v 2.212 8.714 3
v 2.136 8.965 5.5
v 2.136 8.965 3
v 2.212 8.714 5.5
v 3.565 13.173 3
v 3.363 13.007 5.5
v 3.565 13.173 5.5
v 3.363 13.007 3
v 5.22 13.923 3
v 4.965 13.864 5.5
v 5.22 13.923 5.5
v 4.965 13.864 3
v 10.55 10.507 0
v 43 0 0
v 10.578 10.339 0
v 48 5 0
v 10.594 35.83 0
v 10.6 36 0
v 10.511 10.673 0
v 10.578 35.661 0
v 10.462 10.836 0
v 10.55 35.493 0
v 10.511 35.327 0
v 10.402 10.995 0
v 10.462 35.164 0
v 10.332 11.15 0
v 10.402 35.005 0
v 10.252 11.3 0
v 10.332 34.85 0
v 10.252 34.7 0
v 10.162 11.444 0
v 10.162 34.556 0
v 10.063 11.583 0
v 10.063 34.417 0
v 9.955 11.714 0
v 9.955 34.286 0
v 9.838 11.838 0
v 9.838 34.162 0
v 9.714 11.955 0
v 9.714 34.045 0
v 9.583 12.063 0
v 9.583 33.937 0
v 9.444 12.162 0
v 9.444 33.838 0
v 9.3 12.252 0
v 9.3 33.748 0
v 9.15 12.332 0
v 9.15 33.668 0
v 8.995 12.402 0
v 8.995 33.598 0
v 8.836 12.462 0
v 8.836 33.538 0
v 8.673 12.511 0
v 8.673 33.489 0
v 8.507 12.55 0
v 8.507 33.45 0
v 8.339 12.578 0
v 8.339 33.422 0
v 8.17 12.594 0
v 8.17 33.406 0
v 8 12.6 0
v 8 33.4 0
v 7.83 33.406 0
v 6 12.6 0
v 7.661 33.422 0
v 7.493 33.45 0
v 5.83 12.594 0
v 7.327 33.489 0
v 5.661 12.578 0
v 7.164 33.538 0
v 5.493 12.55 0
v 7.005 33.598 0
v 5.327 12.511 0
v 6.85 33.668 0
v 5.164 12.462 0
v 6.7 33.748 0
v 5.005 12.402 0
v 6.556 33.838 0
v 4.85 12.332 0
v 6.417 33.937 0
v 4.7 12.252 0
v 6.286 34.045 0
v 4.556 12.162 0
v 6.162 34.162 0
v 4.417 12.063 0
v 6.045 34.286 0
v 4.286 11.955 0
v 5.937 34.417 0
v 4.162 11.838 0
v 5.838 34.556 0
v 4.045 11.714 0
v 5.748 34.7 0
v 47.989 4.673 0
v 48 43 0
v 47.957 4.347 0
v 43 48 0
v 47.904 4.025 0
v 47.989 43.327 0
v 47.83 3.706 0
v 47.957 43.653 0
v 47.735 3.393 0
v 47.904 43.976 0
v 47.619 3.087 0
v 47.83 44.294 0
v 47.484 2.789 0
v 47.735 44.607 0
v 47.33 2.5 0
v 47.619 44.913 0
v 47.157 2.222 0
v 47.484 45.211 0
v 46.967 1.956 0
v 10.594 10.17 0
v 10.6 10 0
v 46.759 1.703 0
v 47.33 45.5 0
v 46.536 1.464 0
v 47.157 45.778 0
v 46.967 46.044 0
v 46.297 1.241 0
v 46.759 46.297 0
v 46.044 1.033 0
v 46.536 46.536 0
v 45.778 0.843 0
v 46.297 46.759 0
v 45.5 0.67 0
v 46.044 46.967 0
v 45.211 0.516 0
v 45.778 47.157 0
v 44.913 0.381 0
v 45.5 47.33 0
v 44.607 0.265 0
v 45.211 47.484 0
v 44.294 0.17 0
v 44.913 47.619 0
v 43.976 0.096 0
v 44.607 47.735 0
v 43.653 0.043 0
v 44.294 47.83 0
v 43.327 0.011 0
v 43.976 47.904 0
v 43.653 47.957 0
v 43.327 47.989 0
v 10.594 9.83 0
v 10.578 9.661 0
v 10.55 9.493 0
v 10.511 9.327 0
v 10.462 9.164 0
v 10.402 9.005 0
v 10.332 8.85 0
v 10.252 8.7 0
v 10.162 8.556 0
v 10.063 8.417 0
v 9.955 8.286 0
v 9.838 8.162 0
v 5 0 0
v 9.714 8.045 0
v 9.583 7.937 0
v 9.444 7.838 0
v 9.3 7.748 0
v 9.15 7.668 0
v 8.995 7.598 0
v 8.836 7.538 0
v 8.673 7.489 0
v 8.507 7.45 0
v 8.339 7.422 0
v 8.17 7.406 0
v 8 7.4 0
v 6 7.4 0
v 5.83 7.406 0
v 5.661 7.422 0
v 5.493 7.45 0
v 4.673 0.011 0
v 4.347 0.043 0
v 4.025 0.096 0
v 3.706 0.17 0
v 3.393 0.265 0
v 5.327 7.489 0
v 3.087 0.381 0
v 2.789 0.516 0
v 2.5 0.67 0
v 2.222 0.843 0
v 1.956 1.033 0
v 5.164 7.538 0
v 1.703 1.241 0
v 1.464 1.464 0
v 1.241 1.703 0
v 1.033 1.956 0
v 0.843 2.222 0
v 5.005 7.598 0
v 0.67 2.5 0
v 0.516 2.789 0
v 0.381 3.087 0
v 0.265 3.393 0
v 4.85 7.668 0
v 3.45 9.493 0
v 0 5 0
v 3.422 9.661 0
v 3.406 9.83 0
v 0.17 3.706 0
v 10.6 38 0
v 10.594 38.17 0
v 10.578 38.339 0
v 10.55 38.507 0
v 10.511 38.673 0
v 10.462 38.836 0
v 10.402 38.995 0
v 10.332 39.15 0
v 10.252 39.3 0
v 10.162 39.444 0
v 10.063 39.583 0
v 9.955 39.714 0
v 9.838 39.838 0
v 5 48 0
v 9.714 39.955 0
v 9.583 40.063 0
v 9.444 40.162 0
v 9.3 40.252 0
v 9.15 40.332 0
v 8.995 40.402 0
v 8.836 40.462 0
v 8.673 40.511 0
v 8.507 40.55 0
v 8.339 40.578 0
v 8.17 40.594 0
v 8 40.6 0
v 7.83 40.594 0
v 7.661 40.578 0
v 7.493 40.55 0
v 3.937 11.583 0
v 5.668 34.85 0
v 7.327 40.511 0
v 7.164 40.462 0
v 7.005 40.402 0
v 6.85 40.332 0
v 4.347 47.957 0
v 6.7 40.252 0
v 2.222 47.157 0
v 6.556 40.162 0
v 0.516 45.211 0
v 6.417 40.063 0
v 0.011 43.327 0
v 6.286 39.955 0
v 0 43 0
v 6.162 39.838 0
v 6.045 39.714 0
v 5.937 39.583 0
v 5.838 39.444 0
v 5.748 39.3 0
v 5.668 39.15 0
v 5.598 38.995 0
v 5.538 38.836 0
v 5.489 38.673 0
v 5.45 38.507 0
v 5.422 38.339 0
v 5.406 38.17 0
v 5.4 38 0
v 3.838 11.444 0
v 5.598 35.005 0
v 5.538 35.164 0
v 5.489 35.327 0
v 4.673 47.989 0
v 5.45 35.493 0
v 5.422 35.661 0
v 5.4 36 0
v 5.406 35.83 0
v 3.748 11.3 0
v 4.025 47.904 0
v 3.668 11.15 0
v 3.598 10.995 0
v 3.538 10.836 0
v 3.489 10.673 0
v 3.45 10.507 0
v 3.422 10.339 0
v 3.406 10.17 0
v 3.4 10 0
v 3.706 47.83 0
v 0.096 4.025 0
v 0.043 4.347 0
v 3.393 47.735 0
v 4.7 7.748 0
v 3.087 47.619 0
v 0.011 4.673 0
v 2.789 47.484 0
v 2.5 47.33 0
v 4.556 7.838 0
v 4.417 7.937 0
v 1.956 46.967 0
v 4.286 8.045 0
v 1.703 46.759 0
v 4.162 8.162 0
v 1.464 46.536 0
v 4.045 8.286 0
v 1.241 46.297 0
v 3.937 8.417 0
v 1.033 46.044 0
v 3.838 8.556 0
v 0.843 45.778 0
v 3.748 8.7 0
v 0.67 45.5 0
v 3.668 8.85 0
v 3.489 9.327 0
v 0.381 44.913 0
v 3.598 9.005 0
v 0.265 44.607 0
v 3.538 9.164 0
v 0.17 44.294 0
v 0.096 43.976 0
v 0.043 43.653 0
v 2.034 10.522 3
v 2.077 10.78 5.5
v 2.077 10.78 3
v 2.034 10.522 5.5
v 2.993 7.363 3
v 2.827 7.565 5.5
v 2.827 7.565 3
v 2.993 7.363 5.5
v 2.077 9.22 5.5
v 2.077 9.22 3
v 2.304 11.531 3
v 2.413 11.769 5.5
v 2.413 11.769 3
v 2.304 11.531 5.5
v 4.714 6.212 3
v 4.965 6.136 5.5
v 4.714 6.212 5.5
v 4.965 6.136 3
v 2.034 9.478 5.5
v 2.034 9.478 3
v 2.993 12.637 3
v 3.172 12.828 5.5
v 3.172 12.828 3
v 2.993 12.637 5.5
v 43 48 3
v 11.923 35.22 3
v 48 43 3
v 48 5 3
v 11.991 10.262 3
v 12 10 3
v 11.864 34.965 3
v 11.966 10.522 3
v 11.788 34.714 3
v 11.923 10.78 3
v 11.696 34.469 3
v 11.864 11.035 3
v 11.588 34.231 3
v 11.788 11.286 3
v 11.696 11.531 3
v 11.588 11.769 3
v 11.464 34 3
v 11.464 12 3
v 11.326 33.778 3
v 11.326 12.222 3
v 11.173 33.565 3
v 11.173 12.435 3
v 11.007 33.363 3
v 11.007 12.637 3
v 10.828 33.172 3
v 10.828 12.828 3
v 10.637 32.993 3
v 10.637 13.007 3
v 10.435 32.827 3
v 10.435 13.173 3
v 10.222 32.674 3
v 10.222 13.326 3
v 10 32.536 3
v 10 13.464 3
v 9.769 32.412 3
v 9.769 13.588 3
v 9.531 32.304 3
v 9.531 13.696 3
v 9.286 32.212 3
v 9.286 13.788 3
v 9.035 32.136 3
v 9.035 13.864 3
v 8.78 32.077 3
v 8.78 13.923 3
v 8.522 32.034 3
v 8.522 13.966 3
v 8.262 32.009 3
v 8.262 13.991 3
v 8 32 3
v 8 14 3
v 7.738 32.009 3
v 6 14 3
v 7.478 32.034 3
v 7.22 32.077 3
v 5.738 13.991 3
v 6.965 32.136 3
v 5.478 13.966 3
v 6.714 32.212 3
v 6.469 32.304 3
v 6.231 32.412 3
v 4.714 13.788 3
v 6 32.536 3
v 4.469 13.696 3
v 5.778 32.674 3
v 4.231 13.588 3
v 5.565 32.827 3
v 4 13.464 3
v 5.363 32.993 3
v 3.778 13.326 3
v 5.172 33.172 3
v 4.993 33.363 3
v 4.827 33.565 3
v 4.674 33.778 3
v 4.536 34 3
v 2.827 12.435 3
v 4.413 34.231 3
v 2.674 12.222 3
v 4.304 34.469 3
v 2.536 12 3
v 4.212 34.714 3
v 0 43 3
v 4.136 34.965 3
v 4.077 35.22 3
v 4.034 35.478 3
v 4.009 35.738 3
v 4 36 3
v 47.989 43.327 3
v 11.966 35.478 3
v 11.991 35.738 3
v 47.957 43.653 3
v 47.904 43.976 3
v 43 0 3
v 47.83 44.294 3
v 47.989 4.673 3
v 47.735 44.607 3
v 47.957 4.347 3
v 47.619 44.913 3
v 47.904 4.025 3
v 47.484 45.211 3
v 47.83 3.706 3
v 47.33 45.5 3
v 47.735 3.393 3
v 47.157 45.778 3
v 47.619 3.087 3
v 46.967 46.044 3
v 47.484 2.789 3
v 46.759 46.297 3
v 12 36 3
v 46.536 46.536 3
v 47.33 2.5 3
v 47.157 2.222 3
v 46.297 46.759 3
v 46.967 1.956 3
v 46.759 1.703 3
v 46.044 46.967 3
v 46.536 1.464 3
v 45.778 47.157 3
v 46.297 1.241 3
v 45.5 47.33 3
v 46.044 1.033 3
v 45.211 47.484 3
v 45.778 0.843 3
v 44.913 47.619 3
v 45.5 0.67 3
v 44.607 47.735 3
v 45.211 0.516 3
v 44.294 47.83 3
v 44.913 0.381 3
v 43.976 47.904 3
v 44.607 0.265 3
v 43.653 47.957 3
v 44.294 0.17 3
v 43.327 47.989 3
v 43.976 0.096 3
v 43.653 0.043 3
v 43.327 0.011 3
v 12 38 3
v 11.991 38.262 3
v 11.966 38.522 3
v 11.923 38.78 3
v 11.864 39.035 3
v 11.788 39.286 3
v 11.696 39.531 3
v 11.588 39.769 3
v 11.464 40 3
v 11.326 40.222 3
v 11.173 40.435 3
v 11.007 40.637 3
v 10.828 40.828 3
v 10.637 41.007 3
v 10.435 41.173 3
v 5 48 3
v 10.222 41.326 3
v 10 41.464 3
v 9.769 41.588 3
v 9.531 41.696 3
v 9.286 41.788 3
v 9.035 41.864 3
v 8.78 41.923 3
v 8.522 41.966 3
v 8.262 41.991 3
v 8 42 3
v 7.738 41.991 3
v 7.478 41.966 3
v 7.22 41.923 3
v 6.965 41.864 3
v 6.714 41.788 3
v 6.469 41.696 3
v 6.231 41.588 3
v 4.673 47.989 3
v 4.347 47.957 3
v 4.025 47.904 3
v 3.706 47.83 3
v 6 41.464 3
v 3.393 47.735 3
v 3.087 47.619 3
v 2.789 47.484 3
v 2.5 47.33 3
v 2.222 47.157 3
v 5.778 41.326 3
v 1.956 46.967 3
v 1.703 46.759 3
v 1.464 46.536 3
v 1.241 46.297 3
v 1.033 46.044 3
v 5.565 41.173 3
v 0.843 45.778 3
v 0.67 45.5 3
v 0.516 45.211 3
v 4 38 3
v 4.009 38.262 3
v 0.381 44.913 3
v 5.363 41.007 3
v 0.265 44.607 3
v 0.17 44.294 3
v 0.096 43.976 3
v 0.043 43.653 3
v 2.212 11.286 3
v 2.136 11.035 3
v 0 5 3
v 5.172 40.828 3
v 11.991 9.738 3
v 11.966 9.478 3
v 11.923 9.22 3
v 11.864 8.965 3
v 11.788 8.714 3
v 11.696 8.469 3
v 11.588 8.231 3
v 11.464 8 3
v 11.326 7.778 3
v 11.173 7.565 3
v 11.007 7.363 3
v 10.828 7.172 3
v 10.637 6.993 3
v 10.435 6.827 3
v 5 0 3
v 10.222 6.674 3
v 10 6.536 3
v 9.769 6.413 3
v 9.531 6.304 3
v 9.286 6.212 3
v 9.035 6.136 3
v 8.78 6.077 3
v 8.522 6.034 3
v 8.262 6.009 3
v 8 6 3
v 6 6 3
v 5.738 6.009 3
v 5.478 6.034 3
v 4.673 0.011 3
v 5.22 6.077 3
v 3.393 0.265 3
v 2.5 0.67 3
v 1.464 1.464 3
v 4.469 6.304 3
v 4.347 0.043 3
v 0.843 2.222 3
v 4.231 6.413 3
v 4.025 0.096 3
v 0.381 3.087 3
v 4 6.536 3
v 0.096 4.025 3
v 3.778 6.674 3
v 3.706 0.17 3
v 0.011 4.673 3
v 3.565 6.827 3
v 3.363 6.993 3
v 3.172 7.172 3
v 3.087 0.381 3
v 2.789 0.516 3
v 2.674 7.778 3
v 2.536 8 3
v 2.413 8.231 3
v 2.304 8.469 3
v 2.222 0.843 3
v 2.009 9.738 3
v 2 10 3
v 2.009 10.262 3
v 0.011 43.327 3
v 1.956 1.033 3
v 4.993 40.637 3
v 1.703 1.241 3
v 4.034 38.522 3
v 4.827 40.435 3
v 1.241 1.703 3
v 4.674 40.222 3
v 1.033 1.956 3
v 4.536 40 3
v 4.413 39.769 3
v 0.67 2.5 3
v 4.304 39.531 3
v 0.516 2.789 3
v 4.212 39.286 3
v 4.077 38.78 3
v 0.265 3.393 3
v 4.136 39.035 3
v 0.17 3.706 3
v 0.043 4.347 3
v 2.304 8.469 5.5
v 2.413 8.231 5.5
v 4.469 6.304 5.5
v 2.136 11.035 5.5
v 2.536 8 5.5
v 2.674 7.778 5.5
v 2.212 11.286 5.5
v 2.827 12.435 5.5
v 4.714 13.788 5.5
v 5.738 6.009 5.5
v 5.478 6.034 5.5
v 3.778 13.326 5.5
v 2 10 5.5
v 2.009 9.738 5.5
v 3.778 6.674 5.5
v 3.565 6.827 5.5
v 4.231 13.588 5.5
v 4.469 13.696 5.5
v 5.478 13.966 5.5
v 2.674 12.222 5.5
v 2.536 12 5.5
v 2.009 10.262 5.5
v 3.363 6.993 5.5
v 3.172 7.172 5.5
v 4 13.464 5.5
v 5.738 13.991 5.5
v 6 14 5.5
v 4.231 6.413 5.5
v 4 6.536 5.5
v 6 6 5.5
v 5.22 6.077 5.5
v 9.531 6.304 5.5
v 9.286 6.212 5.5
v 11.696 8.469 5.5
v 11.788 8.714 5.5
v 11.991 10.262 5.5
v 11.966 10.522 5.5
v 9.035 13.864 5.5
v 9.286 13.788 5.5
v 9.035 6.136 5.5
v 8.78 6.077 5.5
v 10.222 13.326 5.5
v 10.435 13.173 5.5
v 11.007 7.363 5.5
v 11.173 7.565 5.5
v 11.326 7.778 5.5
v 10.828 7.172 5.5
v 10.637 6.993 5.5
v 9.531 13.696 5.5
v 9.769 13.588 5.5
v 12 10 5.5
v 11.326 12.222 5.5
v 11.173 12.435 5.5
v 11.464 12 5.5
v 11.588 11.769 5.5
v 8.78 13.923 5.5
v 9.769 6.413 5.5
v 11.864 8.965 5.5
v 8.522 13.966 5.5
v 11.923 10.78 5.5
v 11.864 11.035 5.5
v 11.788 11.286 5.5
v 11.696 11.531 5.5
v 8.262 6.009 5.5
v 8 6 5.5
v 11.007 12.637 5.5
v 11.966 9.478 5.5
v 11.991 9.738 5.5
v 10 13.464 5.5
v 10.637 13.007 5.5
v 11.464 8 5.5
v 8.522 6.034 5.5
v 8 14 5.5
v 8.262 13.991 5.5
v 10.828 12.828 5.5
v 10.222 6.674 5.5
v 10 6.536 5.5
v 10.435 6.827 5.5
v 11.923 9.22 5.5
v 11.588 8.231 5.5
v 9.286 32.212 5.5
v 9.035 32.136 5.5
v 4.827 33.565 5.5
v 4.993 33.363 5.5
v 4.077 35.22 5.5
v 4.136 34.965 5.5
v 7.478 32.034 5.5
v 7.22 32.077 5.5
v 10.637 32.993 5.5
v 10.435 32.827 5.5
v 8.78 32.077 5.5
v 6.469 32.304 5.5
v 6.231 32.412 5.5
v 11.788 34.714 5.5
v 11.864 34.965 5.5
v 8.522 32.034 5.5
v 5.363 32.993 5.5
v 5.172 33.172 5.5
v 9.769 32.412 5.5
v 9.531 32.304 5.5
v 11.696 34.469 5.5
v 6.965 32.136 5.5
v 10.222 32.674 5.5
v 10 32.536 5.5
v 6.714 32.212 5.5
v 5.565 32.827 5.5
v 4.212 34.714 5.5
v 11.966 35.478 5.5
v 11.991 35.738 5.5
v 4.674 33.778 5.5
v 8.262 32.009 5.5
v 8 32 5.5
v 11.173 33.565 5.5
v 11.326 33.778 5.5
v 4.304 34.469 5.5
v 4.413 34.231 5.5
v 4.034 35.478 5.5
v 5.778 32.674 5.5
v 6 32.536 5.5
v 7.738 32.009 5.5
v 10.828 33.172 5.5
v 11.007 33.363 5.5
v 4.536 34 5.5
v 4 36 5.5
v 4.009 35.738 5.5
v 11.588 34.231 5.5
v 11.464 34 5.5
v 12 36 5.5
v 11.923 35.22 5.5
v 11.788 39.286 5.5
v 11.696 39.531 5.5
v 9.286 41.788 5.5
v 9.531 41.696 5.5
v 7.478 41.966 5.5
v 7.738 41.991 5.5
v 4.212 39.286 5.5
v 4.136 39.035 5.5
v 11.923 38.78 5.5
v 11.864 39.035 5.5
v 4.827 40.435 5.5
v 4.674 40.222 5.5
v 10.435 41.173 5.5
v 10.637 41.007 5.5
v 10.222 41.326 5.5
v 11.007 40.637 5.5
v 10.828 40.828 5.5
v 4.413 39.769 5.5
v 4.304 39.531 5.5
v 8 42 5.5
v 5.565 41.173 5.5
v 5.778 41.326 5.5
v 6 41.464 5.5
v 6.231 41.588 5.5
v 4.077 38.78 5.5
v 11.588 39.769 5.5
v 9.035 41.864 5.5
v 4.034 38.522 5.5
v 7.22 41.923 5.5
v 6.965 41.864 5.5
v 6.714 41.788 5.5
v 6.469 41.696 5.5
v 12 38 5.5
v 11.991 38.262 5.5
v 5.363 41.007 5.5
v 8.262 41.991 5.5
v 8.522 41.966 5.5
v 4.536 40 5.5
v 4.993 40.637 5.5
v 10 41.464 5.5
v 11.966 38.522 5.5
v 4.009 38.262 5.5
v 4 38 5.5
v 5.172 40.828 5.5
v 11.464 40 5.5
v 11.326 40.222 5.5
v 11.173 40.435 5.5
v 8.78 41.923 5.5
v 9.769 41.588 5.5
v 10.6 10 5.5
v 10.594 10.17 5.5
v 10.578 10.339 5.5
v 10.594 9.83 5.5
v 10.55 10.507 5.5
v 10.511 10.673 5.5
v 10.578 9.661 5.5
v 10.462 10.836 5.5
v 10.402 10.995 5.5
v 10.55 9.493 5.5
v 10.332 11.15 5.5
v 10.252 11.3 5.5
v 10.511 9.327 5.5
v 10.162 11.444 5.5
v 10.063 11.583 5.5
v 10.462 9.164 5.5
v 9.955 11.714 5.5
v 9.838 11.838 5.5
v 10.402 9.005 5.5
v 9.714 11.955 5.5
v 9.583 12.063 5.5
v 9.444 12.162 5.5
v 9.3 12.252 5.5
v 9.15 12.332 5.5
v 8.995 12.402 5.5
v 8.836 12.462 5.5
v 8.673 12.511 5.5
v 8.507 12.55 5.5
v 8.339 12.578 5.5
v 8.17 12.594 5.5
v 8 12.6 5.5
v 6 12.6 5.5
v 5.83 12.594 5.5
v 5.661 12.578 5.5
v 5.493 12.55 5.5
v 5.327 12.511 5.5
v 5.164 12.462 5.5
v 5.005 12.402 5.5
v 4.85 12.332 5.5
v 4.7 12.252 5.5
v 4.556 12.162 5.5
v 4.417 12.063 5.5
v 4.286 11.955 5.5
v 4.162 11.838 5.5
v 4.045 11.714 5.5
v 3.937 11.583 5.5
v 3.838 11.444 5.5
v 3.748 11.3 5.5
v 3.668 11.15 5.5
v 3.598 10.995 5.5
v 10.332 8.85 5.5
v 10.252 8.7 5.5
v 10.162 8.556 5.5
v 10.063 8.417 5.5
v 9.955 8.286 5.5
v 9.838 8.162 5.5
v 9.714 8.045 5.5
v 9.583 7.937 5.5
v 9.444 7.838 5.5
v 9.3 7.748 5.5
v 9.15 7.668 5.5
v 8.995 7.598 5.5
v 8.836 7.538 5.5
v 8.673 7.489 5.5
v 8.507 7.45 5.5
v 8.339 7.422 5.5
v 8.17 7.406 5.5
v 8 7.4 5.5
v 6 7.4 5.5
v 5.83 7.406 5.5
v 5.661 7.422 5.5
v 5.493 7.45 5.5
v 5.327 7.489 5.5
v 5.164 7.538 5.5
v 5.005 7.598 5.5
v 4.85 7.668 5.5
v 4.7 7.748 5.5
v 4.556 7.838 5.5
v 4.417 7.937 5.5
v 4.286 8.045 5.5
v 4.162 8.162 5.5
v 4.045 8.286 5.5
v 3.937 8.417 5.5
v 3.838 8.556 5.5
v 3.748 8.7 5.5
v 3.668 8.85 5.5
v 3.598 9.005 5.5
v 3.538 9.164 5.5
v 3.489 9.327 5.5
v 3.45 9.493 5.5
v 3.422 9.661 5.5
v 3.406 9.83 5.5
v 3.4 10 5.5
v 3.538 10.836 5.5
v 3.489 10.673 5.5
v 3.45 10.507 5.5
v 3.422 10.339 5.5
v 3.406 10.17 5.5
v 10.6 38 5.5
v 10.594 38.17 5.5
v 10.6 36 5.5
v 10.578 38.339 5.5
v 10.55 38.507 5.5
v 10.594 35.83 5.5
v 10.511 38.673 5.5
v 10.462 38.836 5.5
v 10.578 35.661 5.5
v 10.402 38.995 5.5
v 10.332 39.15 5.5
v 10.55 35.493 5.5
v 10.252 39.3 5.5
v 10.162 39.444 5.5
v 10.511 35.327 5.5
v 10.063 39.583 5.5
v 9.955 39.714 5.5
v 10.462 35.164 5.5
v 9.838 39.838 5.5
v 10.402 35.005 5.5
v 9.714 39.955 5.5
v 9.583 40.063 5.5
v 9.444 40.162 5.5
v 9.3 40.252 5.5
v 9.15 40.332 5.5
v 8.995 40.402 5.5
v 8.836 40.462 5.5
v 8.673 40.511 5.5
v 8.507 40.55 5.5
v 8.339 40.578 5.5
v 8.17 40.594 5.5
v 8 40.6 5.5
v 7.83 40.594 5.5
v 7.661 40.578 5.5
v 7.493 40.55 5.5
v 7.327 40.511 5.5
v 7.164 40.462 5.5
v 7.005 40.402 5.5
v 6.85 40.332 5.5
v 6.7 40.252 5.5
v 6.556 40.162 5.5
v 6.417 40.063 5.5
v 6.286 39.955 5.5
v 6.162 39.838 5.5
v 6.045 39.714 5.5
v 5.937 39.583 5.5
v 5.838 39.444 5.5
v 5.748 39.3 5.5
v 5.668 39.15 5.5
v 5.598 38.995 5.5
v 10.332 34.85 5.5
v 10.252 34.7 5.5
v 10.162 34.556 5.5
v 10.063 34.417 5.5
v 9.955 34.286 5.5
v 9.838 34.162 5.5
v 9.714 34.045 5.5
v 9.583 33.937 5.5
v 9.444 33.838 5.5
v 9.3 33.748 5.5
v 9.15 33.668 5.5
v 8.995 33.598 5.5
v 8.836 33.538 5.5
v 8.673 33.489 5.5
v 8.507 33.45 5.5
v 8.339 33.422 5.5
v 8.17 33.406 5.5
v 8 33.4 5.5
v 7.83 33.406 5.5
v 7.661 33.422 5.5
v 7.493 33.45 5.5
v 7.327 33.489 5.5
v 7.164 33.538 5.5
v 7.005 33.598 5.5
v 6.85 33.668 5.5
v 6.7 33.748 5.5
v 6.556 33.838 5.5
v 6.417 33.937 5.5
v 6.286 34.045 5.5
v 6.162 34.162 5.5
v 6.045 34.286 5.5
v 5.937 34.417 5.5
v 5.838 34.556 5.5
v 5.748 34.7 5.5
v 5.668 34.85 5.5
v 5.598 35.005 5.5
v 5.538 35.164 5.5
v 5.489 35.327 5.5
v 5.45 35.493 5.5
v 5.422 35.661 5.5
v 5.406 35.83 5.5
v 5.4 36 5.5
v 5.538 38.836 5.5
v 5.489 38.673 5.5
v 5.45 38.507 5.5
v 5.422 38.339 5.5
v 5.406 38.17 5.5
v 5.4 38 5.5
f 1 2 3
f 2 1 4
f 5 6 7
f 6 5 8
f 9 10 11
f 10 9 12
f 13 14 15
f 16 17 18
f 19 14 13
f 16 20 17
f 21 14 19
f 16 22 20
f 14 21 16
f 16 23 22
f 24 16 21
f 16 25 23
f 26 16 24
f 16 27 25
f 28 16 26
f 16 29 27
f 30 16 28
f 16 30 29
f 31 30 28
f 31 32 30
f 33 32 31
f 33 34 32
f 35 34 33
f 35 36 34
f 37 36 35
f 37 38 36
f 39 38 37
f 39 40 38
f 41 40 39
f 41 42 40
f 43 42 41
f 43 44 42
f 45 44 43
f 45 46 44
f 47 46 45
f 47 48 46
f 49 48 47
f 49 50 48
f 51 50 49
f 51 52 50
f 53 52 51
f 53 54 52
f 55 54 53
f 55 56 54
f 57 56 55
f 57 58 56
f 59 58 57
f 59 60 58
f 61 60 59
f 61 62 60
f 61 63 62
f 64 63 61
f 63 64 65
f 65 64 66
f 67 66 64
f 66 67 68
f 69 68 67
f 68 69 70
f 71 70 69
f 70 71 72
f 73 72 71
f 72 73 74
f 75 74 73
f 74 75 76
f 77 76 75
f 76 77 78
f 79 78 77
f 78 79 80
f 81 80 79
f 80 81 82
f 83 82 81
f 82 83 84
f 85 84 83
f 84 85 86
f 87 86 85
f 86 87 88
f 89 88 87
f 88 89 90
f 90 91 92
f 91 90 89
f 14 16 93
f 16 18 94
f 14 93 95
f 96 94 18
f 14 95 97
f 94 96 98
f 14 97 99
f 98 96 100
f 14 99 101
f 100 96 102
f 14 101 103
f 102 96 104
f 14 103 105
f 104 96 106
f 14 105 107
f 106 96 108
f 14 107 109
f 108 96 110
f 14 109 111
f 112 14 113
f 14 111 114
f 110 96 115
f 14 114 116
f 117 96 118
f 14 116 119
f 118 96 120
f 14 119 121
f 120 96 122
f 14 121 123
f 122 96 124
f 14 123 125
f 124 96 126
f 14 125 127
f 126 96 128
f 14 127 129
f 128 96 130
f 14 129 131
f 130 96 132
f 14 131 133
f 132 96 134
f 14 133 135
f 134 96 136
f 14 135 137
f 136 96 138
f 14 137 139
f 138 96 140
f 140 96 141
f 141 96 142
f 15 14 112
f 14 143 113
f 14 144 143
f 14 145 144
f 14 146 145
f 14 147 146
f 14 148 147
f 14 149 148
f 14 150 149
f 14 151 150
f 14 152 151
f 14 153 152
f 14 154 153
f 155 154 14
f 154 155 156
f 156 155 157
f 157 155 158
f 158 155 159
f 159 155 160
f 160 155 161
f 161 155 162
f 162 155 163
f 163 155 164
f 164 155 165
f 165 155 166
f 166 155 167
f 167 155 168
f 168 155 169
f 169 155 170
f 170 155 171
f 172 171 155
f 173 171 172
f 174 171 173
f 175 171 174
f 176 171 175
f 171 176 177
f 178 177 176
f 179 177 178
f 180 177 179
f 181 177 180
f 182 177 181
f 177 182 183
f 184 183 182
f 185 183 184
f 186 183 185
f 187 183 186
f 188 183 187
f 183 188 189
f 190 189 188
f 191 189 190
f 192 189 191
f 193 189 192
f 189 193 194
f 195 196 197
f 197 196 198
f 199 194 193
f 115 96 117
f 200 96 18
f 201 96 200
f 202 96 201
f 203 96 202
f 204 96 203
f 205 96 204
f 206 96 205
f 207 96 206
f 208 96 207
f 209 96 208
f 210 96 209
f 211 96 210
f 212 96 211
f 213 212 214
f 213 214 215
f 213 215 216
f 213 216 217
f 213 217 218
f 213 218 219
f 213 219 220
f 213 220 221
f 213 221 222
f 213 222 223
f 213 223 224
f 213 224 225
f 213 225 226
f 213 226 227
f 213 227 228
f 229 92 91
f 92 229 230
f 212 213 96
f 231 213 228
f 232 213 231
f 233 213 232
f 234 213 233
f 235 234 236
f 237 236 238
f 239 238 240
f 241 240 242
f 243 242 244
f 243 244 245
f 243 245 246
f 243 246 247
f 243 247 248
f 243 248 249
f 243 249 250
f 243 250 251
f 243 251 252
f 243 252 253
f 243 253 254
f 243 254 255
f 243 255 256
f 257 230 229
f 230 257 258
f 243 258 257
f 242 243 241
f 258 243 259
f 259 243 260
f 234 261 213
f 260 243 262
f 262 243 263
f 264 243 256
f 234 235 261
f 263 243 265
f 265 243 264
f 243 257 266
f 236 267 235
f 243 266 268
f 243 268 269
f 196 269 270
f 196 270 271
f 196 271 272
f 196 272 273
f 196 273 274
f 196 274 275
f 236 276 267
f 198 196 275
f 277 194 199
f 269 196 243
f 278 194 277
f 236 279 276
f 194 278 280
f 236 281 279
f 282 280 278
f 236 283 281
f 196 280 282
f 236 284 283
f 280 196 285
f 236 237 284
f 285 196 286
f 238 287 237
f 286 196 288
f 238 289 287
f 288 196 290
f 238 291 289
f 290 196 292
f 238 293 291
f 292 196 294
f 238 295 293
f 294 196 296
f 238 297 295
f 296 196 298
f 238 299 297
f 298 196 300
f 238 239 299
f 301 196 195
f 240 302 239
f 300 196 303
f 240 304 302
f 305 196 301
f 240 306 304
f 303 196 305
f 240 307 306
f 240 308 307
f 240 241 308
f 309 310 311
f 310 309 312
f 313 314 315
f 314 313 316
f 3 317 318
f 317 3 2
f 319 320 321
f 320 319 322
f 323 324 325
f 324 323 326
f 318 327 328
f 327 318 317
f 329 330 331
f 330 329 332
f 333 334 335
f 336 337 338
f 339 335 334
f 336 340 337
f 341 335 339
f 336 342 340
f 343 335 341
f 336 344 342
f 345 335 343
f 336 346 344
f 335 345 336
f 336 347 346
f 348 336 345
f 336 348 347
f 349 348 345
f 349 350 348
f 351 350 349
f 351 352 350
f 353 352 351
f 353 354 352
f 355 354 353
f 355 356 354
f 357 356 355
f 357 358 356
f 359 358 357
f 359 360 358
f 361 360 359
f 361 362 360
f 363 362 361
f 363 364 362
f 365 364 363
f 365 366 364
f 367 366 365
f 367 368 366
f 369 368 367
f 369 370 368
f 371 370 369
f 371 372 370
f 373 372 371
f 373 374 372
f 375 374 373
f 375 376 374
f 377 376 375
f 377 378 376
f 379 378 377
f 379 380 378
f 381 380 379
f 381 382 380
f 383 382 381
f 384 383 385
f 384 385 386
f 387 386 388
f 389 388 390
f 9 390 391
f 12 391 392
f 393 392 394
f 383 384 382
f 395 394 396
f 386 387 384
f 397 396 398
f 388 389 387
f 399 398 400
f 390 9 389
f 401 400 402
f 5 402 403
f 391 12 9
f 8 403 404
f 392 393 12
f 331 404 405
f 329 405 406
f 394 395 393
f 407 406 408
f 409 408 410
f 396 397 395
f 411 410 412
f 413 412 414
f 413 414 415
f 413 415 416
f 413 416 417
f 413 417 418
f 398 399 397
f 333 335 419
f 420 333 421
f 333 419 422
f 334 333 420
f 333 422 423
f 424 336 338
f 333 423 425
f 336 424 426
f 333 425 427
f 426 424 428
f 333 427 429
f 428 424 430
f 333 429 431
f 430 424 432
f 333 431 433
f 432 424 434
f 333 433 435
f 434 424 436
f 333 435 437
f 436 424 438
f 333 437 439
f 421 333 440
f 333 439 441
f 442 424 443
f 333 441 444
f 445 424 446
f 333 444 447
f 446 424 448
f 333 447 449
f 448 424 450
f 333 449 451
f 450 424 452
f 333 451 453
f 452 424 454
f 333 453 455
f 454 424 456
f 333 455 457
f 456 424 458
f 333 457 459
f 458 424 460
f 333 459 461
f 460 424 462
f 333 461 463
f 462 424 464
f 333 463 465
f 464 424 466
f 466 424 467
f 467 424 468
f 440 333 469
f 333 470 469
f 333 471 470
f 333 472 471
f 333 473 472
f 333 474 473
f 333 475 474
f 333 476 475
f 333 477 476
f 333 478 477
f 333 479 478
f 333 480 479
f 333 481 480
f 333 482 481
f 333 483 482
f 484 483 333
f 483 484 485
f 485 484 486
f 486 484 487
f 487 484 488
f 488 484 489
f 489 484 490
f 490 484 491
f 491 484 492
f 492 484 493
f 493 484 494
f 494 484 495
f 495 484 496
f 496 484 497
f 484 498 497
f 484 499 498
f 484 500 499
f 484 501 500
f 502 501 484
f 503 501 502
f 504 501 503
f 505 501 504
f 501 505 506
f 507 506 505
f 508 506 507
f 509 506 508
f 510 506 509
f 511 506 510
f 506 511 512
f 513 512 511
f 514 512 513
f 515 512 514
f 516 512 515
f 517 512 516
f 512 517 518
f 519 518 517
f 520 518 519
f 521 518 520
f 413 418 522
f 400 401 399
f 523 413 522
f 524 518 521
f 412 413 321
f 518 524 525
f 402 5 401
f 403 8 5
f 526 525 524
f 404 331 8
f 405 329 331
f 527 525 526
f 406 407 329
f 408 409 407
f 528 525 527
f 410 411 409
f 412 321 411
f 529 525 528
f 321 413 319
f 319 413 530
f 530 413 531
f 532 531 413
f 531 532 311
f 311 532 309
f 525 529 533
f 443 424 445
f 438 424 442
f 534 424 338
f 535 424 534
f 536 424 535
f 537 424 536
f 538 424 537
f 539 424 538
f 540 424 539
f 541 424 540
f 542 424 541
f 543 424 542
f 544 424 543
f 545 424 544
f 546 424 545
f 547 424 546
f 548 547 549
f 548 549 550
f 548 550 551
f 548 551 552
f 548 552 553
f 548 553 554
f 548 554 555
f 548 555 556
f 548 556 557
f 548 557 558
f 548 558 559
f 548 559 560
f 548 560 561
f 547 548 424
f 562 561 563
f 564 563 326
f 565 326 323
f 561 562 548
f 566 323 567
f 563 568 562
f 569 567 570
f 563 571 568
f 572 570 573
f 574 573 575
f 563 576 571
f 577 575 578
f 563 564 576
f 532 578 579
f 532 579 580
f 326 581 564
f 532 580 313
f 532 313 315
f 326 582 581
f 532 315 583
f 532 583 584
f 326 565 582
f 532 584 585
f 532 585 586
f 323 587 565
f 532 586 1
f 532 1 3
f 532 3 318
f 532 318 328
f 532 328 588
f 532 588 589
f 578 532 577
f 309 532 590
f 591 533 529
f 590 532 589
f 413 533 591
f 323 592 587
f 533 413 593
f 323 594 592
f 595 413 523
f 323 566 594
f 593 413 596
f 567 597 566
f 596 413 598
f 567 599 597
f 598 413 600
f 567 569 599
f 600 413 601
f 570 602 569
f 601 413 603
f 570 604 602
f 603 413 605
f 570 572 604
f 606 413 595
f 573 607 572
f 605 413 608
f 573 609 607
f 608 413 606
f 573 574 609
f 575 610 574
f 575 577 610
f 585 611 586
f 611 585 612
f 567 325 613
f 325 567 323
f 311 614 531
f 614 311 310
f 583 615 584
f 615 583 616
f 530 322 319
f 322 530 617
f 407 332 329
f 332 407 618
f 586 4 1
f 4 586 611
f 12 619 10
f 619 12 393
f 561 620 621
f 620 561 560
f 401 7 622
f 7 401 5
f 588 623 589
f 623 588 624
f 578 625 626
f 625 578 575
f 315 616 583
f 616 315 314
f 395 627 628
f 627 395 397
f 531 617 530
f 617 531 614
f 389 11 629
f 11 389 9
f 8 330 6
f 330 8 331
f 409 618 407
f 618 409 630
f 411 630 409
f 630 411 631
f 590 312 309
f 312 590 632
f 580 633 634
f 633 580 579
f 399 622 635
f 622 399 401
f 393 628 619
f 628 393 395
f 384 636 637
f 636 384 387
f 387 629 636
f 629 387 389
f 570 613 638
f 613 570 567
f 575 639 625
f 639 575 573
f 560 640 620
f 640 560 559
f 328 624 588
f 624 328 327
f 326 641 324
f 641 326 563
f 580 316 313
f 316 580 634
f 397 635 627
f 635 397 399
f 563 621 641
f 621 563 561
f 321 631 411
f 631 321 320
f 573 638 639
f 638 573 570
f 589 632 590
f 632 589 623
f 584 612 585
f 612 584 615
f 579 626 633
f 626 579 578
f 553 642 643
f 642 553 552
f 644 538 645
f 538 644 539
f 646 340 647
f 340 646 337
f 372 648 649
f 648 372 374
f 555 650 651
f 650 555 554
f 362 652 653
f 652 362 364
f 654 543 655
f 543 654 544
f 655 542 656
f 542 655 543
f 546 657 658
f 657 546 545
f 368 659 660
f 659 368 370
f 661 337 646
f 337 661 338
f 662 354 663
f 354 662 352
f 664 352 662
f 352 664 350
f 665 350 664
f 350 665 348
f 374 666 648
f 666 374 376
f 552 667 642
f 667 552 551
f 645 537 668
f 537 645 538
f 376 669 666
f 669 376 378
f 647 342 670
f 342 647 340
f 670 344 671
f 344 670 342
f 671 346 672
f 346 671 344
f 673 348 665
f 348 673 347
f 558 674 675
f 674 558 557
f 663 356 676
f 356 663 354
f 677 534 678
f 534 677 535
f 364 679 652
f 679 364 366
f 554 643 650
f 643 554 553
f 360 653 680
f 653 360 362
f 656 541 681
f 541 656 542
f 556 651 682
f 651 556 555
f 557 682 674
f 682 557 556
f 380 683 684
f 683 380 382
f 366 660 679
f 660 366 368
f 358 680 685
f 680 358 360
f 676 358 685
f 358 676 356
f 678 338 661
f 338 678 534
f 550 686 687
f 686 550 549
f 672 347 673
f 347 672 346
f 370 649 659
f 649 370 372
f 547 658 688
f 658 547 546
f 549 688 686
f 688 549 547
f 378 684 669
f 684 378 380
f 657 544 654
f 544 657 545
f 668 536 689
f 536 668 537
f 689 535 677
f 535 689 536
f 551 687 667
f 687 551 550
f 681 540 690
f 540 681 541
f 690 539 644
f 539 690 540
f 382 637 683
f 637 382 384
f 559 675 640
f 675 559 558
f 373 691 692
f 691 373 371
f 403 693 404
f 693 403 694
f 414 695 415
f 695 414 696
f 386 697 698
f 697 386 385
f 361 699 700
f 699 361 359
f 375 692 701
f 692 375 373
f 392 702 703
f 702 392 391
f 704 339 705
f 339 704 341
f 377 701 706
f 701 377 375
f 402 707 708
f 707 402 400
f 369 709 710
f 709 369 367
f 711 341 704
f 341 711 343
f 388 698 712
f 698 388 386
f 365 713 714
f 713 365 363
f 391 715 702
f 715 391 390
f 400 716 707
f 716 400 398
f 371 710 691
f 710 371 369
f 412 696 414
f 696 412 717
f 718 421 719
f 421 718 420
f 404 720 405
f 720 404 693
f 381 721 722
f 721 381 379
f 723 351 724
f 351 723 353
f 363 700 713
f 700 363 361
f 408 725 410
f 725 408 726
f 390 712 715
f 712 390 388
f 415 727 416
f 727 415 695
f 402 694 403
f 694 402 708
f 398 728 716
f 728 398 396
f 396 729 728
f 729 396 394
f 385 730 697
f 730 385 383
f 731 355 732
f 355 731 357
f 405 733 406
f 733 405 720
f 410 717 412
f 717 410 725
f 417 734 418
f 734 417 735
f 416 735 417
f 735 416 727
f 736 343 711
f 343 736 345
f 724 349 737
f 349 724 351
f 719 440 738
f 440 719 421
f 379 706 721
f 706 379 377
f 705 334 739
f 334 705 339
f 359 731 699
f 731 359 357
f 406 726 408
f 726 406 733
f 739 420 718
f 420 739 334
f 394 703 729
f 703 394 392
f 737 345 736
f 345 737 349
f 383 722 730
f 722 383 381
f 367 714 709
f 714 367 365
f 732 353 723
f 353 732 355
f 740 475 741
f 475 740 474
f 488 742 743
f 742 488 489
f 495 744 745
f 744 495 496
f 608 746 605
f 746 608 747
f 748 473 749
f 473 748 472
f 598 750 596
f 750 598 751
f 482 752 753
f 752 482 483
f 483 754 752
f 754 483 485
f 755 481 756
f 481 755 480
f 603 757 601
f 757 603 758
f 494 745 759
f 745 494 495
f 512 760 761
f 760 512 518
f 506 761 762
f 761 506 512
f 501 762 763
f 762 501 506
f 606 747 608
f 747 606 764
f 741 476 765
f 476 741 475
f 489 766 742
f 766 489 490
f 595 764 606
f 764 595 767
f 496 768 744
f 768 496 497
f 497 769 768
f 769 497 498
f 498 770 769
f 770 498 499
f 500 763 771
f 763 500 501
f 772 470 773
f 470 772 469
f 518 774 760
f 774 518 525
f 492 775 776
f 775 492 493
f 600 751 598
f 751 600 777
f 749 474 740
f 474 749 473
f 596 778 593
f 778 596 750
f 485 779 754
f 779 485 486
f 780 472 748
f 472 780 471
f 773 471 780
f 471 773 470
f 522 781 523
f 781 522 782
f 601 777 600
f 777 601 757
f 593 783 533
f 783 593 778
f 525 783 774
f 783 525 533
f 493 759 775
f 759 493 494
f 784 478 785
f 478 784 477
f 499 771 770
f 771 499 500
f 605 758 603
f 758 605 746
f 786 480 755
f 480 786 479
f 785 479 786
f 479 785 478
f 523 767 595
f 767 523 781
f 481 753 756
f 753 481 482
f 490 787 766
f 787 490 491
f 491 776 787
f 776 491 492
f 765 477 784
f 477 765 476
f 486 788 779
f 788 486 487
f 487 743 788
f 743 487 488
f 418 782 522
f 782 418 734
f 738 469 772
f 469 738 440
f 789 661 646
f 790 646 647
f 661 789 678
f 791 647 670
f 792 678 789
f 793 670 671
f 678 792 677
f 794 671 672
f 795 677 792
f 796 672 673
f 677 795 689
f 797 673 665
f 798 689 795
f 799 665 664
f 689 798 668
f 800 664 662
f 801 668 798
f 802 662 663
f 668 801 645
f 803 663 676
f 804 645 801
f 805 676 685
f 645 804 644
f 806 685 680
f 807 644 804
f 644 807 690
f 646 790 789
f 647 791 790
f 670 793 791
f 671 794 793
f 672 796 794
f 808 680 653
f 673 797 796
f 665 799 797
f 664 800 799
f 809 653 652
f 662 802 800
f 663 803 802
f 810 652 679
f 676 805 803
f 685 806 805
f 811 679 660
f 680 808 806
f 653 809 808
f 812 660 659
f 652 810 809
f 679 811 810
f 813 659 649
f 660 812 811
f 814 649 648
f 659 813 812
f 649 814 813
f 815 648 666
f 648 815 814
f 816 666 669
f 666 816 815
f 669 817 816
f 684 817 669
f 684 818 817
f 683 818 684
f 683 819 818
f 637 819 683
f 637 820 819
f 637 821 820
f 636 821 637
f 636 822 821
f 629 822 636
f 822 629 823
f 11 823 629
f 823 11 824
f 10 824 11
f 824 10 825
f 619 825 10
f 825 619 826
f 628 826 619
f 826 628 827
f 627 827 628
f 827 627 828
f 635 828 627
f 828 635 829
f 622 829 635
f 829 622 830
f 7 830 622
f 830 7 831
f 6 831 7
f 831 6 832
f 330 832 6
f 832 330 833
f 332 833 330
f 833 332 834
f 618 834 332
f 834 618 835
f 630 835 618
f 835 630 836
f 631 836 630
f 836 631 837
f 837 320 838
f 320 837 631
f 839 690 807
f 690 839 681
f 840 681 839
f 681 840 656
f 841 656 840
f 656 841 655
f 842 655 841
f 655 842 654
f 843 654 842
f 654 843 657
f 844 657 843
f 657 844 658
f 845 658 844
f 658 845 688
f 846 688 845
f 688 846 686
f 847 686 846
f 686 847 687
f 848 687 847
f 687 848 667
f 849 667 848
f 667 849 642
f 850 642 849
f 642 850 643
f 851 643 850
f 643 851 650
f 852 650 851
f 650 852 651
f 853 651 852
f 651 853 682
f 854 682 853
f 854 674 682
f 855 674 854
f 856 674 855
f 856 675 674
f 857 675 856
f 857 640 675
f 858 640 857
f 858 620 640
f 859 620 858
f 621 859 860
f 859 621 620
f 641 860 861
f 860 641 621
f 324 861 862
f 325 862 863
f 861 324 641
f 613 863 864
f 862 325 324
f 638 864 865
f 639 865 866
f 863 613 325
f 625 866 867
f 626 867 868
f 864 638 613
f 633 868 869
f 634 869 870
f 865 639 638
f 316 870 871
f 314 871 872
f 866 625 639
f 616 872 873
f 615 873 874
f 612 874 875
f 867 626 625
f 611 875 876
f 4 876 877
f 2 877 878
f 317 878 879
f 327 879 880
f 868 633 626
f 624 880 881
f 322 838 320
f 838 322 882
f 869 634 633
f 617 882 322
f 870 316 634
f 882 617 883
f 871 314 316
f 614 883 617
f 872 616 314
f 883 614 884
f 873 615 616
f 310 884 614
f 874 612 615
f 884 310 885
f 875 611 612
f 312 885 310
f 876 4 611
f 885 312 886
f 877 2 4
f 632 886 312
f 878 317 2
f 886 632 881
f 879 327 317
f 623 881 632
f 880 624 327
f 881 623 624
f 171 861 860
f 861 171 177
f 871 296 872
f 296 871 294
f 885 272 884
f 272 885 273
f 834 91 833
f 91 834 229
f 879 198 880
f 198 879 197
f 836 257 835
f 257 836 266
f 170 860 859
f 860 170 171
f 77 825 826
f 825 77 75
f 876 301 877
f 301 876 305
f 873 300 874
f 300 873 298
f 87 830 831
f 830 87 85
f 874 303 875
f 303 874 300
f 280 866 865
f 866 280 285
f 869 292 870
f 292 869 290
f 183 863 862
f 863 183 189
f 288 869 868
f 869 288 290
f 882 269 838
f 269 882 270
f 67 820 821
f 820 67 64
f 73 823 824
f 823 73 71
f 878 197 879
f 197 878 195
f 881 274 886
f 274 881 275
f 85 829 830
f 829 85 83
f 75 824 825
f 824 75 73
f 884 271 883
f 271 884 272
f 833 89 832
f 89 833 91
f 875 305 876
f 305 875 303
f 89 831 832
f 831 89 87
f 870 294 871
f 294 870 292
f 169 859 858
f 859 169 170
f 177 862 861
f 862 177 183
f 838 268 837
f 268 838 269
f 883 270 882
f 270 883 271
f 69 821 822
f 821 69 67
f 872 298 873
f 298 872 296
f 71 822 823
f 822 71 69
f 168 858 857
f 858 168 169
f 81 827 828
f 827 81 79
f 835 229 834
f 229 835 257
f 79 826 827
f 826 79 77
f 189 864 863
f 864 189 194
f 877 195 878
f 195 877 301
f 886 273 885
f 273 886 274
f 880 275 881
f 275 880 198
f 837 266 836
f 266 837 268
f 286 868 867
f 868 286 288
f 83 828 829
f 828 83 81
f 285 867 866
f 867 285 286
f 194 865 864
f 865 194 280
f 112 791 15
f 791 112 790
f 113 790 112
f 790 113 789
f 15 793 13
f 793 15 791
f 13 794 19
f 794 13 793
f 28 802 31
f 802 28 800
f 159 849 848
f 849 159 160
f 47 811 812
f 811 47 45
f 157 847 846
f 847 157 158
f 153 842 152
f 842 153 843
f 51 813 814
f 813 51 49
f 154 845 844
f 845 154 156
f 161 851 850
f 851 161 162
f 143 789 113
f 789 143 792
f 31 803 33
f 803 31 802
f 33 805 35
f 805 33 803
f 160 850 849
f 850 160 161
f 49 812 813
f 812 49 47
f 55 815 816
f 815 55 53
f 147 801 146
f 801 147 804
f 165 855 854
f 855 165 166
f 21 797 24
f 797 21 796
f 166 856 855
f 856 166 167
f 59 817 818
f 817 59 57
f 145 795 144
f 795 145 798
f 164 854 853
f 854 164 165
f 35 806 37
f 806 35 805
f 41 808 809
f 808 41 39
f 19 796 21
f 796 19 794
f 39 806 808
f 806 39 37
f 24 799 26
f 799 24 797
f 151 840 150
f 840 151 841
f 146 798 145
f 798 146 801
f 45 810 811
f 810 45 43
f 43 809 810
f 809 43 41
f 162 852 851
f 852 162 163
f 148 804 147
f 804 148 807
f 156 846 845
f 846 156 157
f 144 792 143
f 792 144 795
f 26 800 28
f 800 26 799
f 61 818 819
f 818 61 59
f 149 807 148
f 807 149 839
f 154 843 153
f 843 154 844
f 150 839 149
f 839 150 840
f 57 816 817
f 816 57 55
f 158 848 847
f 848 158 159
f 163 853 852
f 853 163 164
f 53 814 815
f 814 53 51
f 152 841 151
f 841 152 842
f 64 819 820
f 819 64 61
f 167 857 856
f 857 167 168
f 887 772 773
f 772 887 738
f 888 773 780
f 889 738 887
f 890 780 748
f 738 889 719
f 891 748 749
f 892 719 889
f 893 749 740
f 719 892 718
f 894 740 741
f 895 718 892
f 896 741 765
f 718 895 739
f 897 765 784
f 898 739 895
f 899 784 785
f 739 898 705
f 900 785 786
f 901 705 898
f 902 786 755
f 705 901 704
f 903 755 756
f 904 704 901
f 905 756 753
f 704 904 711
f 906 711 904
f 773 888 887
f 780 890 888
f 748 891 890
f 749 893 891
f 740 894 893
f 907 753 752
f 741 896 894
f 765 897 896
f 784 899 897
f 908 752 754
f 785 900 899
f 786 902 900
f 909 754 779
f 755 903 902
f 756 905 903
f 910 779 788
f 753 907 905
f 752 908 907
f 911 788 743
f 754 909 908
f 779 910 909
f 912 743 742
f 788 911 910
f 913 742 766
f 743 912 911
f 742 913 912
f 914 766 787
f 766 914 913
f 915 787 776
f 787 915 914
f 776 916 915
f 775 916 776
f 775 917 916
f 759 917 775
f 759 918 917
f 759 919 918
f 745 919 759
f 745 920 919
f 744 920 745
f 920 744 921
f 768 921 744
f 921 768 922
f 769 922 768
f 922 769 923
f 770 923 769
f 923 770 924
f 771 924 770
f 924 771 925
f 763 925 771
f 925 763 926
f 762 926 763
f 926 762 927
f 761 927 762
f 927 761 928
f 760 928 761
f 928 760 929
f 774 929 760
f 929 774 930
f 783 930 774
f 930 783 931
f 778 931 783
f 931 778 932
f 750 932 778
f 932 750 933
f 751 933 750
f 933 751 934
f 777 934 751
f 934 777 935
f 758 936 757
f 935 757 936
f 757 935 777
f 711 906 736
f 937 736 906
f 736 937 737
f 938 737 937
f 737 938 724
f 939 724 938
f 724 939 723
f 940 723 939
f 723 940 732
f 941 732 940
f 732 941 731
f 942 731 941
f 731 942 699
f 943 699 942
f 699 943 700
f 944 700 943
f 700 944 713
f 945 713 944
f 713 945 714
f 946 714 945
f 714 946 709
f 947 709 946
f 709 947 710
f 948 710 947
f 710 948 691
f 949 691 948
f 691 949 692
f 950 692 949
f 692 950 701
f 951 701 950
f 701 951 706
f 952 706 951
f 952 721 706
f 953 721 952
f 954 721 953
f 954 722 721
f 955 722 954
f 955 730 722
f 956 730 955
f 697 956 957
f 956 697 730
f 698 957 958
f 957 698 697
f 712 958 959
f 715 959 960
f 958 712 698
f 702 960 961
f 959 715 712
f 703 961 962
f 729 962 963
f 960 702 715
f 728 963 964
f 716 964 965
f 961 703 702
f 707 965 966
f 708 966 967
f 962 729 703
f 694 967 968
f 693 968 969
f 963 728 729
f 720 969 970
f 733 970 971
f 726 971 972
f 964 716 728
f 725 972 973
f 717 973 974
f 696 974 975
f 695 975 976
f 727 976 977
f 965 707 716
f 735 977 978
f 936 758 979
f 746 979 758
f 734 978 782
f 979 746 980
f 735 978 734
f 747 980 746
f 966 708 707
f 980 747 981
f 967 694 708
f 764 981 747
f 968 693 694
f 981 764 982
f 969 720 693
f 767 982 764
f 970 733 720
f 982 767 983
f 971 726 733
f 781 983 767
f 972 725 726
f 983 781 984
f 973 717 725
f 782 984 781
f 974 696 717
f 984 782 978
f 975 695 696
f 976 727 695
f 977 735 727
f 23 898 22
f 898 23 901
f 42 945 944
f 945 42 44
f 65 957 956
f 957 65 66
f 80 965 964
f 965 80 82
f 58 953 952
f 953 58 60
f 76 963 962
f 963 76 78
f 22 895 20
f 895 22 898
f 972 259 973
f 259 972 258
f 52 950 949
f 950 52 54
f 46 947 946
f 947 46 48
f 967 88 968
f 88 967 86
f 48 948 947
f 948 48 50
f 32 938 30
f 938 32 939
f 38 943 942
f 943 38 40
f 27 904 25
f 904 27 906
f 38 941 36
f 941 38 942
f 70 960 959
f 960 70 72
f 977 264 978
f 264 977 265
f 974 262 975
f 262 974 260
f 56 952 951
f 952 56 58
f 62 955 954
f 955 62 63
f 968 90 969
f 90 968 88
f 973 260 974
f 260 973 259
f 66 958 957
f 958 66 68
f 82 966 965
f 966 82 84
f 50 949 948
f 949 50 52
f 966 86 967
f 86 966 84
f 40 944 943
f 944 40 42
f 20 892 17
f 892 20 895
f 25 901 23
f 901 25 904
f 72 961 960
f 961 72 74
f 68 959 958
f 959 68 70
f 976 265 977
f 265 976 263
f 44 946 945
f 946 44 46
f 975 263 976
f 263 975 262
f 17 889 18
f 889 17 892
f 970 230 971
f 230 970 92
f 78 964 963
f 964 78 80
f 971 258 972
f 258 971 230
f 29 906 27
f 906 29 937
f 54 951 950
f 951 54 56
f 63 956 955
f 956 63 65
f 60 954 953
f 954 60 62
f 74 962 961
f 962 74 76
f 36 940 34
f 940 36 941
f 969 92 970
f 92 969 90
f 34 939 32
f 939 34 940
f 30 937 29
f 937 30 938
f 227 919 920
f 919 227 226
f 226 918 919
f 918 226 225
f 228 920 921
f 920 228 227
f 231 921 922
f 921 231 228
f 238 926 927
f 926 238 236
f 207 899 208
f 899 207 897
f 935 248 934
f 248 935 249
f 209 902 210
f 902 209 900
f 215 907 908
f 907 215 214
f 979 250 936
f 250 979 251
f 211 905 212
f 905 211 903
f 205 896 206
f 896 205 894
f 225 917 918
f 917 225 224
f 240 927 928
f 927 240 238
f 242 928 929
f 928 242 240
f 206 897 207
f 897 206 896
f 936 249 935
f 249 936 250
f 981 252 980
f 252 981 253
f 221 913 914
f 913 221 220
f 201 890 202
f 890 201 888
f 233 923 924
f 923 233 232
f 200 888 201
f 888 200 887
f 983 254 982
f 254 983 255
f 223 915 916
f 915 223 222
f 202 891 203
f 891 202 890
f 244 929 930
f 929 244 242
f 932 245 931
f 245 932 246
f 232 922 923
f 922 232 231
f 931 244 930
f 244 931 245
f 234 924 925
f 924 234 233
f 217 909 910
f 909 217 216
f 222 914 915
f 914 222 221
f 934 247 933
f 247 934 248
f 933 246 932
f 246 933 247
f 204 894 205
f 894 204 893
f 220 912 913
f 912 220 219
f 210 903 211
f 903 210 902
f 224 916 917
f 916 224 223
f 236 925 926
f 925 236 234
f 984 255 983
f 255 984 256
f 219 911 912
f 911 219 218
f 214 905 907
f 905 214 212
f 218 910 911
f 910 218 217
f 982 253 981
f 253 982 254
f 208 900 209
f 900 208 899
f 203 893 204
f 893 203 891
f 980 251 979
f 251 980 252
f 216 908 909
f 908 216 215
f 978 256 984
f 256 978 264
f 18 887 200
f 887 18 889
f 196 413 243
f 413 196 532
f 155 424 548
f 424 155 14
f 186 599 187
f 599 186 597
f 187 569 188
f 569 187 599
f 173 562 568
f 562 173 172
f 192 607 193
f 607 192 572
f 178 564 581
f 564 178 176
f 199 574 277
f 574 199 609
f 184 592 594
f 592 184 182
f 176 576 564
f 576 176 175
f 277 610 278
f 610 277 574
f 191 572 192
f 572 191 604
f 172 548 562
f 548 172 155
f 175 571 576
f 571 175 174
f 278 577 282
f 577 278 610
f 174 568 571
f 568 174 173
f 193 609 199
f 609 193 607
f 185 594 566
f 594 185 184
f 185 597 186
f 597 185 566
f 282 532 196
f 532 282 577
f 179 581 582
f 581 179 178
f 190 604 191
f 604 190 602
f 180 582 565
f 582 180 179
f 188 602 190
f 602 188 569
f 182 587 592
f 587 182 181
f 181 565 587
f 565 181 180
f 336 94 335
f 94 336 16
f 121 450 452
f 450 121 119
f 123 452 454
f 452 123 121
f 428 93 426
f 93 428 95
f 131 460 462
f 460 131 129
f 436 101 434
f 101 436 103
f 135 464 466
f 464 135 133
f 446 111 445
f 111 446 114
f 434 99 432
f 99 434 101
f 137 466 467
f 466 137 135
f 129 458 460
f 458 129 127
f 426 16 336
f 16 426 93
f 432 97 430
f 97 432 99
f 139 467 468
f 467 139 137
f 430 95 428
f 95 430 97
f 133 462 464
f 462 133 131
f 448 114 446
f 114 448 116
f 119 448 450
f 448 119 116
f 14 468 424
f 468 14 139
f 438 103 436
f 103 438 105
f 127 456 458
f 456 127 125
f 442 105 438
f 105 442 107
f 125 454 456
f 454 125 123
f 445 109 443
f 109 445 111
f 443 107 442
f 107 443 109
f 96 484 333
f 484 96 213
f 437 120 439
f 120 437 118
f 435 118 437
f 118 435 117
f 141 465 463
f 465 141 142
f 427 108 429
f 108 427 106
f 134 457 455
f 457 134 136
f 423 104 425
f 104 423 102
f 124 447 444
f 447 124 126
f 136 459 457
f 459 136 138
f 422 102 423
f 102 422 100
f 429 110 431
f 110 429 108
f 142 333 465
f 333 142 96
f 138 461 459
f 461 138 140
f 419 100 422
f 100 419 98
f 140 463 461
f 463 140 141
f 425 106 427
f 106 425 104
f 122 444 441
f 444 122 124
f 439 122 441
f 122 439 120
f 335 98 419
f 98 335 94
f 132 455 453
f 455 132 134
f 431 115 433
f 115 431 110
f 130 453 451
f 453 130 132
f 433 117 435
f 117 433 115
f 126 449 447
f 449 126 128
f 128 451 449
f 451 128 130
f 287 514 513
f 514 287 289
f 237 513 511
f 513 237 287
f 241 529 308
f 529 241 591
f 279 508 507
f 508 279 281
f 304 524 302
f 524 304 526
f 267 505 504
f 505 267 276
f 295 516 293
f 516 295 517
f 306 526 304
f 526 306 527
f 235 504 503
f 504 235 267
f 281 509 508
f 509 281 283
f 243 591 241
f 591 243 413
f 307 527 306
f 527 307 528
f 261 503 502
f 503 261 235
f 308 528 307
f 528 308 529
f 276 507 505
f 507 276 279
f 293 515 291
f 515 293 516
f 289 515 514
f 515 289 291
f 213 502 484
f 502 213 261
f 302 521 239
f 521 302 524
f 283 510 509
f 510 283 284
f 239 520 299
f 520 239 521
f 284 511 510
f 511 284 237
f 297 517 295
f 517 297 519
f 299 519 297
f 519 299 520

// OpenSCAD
// by MegaSaturnv 2020-12-05

/////////////////////////////
// Customizable Parameters //
/////////////////////////////
/* [Basic] */
PLATE_X = 48;
PLATE_Y = 48;
PLATE_Z = 3;

CORNER_ROUNDING = 5;

SCREW_HOLE_Z = 2.5;
SCREW_HOLE_LENGTH = 10;
SCREW_HOLE_WIDTH = 8;
SCREW_HOLE_EDGE_THICKNESS = 1.4;
SCREW_HOLE_1_X = 7;
SCREW_HOLE_1_Y = 10;
SCREW_HOLE_2_X = 8;
SCREW_HOLE_2_Y = 37;

/* [Advanced] */
//Use $fn = 24 if it's a preview. $fn = 96 for the render. Increase 96 to produce a smoother curve.
$fn = $preview ? 24 : 96;


/////////////
// Modules //
/////////////
module oval(innerDiameter, outerDiameter, length, height, hollow=true) {
	translate([(outerDiameter-length)/2, 0, 0])	difference() {
		union() {
			cylinder(r=outerDiameter/2, h=height);
			translate([length-outerDiameter, 0, 0]) cylinder(r=outerDiameter/2, h=height);
			translate([0, -outerDiameter/2, 0]) cube([length-outerDiameter, outerDiameter, height]);
		}
		if (hollow) {
			translate([0, 0, -0.005])cylinder(r=innerDiameter/2, h=height+0.01);
			translate([length-innerDiameter-(outerDiameter-innerDiameter), 0, -0.005]) cylinder(r=innerDiameter/2, h=height+0.01);
			translate([0, -innerDiameter/2, -0.005]) cube([length-innerDiameter-(outerDiameter-innerDiameter), innerDiameter, height+0.01]);
		}
	}
}

module roundedCorner(sideLength=1, thickness=1) {
	difference() {
		cube([sideLength, sideLength, thickness]);
		translate([sideLength, sideLength, 0]) cylinder(r=sideLength, h=thickness);
	}
}


////////////////
// Main Model //
////////////////
difference() {
	cube([PLATE_X, PLATE_Y, PLATE_Z]);
	translate([SCREW_HOLE_1_X, SCREW_HOLE_1_Y, 0]) oval(SCREW_HOLE_WIDTH, SCREW_HOLE_WIDTH, SCREW_HOLE_LENGTH, PLATE_Z, false);
	translate([SCREW_HOLE_2_X, SCREW_HOLE_2_Y, 0]) rotate([0,0,90]) oval(SCREW_HOLE_WIDTH, SCREW_HOLE_WIDTH, SCREW_HOLE_LENGTH, PLATE_Z, false);
	roundedCorner(CORNER_ROUNDING, PLATE_Z);
	translate([PLATE_X, 0, 0]) rotate([0, 0, 90]) roundedCorner(CORNER_ROUNDING, PLATE_Z);
	translate([PLATE_X, PLATE_Y, 0]) rotate([0, 0, 180]) roundedCorner(CORNER_ROUNDING, PLATE_Z);
	translate([0, PLATE_Y, 0]) rotate([0, 0, 270]) roundedCorner(CORNER_ROUNDING, PLATE_Z);
}
translate([SCREW_HOLE_1_X, SCREW_HOLE_1_Y, 0]) oval(SCREW_HOLE_WIDTH-SCREW_HOLE_EDGE_THICKNESS*2,SCREW_HOLE_WIDTH,SCREW_HOLE_LENGTH,PLATE_Z+SCREW_HOLE_Z,true);
translate([SCREW_HOLE_2_X, SCREW_HOLE_2_Y, 0]) rotate([0,0,90]) oval(SCREW_HOLE_WIDTH-SCREW_HOLE_EDGE_THICKNESS*2,SCREW_HOLE_WIDTH,SCREW_HOLE_LENGTH,PLATE_Z+SCREW_HOLE_Z,true);
